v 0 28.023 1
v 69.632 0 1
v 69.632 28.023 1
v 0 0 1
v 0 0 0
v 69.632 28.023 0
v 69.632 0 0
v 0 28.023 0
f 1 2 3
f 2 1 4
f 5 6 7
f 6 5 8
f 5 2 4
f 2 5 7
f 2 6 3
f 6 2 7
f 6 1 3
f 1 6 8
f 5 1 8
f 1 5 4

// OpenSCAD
/*
 * PROMPT: H0 scale (1:87) ISO shipping container roof panel, flat for printing.
 * 69.6 mm × 28.0 mm × 1 mm. Plain flat panel, no surface detail.
 */

$fn = 32;
S = 1 / 87;

panel_t     = 1.0;
container_m = 6;

ctnr_l      = (container_m == 6 ? 6058 : 12192) * S;  // 69.6 mm
ctnr_w      = 2438 * S;                                //  28.0 mm

module roof_panel() {
    // X = panel width (ctnr_l), Y = panel depth (ctnr_w), Z = thickness
    cube([ctnr_l, ctnr_w, panel_t]);
}

roof_panel();
